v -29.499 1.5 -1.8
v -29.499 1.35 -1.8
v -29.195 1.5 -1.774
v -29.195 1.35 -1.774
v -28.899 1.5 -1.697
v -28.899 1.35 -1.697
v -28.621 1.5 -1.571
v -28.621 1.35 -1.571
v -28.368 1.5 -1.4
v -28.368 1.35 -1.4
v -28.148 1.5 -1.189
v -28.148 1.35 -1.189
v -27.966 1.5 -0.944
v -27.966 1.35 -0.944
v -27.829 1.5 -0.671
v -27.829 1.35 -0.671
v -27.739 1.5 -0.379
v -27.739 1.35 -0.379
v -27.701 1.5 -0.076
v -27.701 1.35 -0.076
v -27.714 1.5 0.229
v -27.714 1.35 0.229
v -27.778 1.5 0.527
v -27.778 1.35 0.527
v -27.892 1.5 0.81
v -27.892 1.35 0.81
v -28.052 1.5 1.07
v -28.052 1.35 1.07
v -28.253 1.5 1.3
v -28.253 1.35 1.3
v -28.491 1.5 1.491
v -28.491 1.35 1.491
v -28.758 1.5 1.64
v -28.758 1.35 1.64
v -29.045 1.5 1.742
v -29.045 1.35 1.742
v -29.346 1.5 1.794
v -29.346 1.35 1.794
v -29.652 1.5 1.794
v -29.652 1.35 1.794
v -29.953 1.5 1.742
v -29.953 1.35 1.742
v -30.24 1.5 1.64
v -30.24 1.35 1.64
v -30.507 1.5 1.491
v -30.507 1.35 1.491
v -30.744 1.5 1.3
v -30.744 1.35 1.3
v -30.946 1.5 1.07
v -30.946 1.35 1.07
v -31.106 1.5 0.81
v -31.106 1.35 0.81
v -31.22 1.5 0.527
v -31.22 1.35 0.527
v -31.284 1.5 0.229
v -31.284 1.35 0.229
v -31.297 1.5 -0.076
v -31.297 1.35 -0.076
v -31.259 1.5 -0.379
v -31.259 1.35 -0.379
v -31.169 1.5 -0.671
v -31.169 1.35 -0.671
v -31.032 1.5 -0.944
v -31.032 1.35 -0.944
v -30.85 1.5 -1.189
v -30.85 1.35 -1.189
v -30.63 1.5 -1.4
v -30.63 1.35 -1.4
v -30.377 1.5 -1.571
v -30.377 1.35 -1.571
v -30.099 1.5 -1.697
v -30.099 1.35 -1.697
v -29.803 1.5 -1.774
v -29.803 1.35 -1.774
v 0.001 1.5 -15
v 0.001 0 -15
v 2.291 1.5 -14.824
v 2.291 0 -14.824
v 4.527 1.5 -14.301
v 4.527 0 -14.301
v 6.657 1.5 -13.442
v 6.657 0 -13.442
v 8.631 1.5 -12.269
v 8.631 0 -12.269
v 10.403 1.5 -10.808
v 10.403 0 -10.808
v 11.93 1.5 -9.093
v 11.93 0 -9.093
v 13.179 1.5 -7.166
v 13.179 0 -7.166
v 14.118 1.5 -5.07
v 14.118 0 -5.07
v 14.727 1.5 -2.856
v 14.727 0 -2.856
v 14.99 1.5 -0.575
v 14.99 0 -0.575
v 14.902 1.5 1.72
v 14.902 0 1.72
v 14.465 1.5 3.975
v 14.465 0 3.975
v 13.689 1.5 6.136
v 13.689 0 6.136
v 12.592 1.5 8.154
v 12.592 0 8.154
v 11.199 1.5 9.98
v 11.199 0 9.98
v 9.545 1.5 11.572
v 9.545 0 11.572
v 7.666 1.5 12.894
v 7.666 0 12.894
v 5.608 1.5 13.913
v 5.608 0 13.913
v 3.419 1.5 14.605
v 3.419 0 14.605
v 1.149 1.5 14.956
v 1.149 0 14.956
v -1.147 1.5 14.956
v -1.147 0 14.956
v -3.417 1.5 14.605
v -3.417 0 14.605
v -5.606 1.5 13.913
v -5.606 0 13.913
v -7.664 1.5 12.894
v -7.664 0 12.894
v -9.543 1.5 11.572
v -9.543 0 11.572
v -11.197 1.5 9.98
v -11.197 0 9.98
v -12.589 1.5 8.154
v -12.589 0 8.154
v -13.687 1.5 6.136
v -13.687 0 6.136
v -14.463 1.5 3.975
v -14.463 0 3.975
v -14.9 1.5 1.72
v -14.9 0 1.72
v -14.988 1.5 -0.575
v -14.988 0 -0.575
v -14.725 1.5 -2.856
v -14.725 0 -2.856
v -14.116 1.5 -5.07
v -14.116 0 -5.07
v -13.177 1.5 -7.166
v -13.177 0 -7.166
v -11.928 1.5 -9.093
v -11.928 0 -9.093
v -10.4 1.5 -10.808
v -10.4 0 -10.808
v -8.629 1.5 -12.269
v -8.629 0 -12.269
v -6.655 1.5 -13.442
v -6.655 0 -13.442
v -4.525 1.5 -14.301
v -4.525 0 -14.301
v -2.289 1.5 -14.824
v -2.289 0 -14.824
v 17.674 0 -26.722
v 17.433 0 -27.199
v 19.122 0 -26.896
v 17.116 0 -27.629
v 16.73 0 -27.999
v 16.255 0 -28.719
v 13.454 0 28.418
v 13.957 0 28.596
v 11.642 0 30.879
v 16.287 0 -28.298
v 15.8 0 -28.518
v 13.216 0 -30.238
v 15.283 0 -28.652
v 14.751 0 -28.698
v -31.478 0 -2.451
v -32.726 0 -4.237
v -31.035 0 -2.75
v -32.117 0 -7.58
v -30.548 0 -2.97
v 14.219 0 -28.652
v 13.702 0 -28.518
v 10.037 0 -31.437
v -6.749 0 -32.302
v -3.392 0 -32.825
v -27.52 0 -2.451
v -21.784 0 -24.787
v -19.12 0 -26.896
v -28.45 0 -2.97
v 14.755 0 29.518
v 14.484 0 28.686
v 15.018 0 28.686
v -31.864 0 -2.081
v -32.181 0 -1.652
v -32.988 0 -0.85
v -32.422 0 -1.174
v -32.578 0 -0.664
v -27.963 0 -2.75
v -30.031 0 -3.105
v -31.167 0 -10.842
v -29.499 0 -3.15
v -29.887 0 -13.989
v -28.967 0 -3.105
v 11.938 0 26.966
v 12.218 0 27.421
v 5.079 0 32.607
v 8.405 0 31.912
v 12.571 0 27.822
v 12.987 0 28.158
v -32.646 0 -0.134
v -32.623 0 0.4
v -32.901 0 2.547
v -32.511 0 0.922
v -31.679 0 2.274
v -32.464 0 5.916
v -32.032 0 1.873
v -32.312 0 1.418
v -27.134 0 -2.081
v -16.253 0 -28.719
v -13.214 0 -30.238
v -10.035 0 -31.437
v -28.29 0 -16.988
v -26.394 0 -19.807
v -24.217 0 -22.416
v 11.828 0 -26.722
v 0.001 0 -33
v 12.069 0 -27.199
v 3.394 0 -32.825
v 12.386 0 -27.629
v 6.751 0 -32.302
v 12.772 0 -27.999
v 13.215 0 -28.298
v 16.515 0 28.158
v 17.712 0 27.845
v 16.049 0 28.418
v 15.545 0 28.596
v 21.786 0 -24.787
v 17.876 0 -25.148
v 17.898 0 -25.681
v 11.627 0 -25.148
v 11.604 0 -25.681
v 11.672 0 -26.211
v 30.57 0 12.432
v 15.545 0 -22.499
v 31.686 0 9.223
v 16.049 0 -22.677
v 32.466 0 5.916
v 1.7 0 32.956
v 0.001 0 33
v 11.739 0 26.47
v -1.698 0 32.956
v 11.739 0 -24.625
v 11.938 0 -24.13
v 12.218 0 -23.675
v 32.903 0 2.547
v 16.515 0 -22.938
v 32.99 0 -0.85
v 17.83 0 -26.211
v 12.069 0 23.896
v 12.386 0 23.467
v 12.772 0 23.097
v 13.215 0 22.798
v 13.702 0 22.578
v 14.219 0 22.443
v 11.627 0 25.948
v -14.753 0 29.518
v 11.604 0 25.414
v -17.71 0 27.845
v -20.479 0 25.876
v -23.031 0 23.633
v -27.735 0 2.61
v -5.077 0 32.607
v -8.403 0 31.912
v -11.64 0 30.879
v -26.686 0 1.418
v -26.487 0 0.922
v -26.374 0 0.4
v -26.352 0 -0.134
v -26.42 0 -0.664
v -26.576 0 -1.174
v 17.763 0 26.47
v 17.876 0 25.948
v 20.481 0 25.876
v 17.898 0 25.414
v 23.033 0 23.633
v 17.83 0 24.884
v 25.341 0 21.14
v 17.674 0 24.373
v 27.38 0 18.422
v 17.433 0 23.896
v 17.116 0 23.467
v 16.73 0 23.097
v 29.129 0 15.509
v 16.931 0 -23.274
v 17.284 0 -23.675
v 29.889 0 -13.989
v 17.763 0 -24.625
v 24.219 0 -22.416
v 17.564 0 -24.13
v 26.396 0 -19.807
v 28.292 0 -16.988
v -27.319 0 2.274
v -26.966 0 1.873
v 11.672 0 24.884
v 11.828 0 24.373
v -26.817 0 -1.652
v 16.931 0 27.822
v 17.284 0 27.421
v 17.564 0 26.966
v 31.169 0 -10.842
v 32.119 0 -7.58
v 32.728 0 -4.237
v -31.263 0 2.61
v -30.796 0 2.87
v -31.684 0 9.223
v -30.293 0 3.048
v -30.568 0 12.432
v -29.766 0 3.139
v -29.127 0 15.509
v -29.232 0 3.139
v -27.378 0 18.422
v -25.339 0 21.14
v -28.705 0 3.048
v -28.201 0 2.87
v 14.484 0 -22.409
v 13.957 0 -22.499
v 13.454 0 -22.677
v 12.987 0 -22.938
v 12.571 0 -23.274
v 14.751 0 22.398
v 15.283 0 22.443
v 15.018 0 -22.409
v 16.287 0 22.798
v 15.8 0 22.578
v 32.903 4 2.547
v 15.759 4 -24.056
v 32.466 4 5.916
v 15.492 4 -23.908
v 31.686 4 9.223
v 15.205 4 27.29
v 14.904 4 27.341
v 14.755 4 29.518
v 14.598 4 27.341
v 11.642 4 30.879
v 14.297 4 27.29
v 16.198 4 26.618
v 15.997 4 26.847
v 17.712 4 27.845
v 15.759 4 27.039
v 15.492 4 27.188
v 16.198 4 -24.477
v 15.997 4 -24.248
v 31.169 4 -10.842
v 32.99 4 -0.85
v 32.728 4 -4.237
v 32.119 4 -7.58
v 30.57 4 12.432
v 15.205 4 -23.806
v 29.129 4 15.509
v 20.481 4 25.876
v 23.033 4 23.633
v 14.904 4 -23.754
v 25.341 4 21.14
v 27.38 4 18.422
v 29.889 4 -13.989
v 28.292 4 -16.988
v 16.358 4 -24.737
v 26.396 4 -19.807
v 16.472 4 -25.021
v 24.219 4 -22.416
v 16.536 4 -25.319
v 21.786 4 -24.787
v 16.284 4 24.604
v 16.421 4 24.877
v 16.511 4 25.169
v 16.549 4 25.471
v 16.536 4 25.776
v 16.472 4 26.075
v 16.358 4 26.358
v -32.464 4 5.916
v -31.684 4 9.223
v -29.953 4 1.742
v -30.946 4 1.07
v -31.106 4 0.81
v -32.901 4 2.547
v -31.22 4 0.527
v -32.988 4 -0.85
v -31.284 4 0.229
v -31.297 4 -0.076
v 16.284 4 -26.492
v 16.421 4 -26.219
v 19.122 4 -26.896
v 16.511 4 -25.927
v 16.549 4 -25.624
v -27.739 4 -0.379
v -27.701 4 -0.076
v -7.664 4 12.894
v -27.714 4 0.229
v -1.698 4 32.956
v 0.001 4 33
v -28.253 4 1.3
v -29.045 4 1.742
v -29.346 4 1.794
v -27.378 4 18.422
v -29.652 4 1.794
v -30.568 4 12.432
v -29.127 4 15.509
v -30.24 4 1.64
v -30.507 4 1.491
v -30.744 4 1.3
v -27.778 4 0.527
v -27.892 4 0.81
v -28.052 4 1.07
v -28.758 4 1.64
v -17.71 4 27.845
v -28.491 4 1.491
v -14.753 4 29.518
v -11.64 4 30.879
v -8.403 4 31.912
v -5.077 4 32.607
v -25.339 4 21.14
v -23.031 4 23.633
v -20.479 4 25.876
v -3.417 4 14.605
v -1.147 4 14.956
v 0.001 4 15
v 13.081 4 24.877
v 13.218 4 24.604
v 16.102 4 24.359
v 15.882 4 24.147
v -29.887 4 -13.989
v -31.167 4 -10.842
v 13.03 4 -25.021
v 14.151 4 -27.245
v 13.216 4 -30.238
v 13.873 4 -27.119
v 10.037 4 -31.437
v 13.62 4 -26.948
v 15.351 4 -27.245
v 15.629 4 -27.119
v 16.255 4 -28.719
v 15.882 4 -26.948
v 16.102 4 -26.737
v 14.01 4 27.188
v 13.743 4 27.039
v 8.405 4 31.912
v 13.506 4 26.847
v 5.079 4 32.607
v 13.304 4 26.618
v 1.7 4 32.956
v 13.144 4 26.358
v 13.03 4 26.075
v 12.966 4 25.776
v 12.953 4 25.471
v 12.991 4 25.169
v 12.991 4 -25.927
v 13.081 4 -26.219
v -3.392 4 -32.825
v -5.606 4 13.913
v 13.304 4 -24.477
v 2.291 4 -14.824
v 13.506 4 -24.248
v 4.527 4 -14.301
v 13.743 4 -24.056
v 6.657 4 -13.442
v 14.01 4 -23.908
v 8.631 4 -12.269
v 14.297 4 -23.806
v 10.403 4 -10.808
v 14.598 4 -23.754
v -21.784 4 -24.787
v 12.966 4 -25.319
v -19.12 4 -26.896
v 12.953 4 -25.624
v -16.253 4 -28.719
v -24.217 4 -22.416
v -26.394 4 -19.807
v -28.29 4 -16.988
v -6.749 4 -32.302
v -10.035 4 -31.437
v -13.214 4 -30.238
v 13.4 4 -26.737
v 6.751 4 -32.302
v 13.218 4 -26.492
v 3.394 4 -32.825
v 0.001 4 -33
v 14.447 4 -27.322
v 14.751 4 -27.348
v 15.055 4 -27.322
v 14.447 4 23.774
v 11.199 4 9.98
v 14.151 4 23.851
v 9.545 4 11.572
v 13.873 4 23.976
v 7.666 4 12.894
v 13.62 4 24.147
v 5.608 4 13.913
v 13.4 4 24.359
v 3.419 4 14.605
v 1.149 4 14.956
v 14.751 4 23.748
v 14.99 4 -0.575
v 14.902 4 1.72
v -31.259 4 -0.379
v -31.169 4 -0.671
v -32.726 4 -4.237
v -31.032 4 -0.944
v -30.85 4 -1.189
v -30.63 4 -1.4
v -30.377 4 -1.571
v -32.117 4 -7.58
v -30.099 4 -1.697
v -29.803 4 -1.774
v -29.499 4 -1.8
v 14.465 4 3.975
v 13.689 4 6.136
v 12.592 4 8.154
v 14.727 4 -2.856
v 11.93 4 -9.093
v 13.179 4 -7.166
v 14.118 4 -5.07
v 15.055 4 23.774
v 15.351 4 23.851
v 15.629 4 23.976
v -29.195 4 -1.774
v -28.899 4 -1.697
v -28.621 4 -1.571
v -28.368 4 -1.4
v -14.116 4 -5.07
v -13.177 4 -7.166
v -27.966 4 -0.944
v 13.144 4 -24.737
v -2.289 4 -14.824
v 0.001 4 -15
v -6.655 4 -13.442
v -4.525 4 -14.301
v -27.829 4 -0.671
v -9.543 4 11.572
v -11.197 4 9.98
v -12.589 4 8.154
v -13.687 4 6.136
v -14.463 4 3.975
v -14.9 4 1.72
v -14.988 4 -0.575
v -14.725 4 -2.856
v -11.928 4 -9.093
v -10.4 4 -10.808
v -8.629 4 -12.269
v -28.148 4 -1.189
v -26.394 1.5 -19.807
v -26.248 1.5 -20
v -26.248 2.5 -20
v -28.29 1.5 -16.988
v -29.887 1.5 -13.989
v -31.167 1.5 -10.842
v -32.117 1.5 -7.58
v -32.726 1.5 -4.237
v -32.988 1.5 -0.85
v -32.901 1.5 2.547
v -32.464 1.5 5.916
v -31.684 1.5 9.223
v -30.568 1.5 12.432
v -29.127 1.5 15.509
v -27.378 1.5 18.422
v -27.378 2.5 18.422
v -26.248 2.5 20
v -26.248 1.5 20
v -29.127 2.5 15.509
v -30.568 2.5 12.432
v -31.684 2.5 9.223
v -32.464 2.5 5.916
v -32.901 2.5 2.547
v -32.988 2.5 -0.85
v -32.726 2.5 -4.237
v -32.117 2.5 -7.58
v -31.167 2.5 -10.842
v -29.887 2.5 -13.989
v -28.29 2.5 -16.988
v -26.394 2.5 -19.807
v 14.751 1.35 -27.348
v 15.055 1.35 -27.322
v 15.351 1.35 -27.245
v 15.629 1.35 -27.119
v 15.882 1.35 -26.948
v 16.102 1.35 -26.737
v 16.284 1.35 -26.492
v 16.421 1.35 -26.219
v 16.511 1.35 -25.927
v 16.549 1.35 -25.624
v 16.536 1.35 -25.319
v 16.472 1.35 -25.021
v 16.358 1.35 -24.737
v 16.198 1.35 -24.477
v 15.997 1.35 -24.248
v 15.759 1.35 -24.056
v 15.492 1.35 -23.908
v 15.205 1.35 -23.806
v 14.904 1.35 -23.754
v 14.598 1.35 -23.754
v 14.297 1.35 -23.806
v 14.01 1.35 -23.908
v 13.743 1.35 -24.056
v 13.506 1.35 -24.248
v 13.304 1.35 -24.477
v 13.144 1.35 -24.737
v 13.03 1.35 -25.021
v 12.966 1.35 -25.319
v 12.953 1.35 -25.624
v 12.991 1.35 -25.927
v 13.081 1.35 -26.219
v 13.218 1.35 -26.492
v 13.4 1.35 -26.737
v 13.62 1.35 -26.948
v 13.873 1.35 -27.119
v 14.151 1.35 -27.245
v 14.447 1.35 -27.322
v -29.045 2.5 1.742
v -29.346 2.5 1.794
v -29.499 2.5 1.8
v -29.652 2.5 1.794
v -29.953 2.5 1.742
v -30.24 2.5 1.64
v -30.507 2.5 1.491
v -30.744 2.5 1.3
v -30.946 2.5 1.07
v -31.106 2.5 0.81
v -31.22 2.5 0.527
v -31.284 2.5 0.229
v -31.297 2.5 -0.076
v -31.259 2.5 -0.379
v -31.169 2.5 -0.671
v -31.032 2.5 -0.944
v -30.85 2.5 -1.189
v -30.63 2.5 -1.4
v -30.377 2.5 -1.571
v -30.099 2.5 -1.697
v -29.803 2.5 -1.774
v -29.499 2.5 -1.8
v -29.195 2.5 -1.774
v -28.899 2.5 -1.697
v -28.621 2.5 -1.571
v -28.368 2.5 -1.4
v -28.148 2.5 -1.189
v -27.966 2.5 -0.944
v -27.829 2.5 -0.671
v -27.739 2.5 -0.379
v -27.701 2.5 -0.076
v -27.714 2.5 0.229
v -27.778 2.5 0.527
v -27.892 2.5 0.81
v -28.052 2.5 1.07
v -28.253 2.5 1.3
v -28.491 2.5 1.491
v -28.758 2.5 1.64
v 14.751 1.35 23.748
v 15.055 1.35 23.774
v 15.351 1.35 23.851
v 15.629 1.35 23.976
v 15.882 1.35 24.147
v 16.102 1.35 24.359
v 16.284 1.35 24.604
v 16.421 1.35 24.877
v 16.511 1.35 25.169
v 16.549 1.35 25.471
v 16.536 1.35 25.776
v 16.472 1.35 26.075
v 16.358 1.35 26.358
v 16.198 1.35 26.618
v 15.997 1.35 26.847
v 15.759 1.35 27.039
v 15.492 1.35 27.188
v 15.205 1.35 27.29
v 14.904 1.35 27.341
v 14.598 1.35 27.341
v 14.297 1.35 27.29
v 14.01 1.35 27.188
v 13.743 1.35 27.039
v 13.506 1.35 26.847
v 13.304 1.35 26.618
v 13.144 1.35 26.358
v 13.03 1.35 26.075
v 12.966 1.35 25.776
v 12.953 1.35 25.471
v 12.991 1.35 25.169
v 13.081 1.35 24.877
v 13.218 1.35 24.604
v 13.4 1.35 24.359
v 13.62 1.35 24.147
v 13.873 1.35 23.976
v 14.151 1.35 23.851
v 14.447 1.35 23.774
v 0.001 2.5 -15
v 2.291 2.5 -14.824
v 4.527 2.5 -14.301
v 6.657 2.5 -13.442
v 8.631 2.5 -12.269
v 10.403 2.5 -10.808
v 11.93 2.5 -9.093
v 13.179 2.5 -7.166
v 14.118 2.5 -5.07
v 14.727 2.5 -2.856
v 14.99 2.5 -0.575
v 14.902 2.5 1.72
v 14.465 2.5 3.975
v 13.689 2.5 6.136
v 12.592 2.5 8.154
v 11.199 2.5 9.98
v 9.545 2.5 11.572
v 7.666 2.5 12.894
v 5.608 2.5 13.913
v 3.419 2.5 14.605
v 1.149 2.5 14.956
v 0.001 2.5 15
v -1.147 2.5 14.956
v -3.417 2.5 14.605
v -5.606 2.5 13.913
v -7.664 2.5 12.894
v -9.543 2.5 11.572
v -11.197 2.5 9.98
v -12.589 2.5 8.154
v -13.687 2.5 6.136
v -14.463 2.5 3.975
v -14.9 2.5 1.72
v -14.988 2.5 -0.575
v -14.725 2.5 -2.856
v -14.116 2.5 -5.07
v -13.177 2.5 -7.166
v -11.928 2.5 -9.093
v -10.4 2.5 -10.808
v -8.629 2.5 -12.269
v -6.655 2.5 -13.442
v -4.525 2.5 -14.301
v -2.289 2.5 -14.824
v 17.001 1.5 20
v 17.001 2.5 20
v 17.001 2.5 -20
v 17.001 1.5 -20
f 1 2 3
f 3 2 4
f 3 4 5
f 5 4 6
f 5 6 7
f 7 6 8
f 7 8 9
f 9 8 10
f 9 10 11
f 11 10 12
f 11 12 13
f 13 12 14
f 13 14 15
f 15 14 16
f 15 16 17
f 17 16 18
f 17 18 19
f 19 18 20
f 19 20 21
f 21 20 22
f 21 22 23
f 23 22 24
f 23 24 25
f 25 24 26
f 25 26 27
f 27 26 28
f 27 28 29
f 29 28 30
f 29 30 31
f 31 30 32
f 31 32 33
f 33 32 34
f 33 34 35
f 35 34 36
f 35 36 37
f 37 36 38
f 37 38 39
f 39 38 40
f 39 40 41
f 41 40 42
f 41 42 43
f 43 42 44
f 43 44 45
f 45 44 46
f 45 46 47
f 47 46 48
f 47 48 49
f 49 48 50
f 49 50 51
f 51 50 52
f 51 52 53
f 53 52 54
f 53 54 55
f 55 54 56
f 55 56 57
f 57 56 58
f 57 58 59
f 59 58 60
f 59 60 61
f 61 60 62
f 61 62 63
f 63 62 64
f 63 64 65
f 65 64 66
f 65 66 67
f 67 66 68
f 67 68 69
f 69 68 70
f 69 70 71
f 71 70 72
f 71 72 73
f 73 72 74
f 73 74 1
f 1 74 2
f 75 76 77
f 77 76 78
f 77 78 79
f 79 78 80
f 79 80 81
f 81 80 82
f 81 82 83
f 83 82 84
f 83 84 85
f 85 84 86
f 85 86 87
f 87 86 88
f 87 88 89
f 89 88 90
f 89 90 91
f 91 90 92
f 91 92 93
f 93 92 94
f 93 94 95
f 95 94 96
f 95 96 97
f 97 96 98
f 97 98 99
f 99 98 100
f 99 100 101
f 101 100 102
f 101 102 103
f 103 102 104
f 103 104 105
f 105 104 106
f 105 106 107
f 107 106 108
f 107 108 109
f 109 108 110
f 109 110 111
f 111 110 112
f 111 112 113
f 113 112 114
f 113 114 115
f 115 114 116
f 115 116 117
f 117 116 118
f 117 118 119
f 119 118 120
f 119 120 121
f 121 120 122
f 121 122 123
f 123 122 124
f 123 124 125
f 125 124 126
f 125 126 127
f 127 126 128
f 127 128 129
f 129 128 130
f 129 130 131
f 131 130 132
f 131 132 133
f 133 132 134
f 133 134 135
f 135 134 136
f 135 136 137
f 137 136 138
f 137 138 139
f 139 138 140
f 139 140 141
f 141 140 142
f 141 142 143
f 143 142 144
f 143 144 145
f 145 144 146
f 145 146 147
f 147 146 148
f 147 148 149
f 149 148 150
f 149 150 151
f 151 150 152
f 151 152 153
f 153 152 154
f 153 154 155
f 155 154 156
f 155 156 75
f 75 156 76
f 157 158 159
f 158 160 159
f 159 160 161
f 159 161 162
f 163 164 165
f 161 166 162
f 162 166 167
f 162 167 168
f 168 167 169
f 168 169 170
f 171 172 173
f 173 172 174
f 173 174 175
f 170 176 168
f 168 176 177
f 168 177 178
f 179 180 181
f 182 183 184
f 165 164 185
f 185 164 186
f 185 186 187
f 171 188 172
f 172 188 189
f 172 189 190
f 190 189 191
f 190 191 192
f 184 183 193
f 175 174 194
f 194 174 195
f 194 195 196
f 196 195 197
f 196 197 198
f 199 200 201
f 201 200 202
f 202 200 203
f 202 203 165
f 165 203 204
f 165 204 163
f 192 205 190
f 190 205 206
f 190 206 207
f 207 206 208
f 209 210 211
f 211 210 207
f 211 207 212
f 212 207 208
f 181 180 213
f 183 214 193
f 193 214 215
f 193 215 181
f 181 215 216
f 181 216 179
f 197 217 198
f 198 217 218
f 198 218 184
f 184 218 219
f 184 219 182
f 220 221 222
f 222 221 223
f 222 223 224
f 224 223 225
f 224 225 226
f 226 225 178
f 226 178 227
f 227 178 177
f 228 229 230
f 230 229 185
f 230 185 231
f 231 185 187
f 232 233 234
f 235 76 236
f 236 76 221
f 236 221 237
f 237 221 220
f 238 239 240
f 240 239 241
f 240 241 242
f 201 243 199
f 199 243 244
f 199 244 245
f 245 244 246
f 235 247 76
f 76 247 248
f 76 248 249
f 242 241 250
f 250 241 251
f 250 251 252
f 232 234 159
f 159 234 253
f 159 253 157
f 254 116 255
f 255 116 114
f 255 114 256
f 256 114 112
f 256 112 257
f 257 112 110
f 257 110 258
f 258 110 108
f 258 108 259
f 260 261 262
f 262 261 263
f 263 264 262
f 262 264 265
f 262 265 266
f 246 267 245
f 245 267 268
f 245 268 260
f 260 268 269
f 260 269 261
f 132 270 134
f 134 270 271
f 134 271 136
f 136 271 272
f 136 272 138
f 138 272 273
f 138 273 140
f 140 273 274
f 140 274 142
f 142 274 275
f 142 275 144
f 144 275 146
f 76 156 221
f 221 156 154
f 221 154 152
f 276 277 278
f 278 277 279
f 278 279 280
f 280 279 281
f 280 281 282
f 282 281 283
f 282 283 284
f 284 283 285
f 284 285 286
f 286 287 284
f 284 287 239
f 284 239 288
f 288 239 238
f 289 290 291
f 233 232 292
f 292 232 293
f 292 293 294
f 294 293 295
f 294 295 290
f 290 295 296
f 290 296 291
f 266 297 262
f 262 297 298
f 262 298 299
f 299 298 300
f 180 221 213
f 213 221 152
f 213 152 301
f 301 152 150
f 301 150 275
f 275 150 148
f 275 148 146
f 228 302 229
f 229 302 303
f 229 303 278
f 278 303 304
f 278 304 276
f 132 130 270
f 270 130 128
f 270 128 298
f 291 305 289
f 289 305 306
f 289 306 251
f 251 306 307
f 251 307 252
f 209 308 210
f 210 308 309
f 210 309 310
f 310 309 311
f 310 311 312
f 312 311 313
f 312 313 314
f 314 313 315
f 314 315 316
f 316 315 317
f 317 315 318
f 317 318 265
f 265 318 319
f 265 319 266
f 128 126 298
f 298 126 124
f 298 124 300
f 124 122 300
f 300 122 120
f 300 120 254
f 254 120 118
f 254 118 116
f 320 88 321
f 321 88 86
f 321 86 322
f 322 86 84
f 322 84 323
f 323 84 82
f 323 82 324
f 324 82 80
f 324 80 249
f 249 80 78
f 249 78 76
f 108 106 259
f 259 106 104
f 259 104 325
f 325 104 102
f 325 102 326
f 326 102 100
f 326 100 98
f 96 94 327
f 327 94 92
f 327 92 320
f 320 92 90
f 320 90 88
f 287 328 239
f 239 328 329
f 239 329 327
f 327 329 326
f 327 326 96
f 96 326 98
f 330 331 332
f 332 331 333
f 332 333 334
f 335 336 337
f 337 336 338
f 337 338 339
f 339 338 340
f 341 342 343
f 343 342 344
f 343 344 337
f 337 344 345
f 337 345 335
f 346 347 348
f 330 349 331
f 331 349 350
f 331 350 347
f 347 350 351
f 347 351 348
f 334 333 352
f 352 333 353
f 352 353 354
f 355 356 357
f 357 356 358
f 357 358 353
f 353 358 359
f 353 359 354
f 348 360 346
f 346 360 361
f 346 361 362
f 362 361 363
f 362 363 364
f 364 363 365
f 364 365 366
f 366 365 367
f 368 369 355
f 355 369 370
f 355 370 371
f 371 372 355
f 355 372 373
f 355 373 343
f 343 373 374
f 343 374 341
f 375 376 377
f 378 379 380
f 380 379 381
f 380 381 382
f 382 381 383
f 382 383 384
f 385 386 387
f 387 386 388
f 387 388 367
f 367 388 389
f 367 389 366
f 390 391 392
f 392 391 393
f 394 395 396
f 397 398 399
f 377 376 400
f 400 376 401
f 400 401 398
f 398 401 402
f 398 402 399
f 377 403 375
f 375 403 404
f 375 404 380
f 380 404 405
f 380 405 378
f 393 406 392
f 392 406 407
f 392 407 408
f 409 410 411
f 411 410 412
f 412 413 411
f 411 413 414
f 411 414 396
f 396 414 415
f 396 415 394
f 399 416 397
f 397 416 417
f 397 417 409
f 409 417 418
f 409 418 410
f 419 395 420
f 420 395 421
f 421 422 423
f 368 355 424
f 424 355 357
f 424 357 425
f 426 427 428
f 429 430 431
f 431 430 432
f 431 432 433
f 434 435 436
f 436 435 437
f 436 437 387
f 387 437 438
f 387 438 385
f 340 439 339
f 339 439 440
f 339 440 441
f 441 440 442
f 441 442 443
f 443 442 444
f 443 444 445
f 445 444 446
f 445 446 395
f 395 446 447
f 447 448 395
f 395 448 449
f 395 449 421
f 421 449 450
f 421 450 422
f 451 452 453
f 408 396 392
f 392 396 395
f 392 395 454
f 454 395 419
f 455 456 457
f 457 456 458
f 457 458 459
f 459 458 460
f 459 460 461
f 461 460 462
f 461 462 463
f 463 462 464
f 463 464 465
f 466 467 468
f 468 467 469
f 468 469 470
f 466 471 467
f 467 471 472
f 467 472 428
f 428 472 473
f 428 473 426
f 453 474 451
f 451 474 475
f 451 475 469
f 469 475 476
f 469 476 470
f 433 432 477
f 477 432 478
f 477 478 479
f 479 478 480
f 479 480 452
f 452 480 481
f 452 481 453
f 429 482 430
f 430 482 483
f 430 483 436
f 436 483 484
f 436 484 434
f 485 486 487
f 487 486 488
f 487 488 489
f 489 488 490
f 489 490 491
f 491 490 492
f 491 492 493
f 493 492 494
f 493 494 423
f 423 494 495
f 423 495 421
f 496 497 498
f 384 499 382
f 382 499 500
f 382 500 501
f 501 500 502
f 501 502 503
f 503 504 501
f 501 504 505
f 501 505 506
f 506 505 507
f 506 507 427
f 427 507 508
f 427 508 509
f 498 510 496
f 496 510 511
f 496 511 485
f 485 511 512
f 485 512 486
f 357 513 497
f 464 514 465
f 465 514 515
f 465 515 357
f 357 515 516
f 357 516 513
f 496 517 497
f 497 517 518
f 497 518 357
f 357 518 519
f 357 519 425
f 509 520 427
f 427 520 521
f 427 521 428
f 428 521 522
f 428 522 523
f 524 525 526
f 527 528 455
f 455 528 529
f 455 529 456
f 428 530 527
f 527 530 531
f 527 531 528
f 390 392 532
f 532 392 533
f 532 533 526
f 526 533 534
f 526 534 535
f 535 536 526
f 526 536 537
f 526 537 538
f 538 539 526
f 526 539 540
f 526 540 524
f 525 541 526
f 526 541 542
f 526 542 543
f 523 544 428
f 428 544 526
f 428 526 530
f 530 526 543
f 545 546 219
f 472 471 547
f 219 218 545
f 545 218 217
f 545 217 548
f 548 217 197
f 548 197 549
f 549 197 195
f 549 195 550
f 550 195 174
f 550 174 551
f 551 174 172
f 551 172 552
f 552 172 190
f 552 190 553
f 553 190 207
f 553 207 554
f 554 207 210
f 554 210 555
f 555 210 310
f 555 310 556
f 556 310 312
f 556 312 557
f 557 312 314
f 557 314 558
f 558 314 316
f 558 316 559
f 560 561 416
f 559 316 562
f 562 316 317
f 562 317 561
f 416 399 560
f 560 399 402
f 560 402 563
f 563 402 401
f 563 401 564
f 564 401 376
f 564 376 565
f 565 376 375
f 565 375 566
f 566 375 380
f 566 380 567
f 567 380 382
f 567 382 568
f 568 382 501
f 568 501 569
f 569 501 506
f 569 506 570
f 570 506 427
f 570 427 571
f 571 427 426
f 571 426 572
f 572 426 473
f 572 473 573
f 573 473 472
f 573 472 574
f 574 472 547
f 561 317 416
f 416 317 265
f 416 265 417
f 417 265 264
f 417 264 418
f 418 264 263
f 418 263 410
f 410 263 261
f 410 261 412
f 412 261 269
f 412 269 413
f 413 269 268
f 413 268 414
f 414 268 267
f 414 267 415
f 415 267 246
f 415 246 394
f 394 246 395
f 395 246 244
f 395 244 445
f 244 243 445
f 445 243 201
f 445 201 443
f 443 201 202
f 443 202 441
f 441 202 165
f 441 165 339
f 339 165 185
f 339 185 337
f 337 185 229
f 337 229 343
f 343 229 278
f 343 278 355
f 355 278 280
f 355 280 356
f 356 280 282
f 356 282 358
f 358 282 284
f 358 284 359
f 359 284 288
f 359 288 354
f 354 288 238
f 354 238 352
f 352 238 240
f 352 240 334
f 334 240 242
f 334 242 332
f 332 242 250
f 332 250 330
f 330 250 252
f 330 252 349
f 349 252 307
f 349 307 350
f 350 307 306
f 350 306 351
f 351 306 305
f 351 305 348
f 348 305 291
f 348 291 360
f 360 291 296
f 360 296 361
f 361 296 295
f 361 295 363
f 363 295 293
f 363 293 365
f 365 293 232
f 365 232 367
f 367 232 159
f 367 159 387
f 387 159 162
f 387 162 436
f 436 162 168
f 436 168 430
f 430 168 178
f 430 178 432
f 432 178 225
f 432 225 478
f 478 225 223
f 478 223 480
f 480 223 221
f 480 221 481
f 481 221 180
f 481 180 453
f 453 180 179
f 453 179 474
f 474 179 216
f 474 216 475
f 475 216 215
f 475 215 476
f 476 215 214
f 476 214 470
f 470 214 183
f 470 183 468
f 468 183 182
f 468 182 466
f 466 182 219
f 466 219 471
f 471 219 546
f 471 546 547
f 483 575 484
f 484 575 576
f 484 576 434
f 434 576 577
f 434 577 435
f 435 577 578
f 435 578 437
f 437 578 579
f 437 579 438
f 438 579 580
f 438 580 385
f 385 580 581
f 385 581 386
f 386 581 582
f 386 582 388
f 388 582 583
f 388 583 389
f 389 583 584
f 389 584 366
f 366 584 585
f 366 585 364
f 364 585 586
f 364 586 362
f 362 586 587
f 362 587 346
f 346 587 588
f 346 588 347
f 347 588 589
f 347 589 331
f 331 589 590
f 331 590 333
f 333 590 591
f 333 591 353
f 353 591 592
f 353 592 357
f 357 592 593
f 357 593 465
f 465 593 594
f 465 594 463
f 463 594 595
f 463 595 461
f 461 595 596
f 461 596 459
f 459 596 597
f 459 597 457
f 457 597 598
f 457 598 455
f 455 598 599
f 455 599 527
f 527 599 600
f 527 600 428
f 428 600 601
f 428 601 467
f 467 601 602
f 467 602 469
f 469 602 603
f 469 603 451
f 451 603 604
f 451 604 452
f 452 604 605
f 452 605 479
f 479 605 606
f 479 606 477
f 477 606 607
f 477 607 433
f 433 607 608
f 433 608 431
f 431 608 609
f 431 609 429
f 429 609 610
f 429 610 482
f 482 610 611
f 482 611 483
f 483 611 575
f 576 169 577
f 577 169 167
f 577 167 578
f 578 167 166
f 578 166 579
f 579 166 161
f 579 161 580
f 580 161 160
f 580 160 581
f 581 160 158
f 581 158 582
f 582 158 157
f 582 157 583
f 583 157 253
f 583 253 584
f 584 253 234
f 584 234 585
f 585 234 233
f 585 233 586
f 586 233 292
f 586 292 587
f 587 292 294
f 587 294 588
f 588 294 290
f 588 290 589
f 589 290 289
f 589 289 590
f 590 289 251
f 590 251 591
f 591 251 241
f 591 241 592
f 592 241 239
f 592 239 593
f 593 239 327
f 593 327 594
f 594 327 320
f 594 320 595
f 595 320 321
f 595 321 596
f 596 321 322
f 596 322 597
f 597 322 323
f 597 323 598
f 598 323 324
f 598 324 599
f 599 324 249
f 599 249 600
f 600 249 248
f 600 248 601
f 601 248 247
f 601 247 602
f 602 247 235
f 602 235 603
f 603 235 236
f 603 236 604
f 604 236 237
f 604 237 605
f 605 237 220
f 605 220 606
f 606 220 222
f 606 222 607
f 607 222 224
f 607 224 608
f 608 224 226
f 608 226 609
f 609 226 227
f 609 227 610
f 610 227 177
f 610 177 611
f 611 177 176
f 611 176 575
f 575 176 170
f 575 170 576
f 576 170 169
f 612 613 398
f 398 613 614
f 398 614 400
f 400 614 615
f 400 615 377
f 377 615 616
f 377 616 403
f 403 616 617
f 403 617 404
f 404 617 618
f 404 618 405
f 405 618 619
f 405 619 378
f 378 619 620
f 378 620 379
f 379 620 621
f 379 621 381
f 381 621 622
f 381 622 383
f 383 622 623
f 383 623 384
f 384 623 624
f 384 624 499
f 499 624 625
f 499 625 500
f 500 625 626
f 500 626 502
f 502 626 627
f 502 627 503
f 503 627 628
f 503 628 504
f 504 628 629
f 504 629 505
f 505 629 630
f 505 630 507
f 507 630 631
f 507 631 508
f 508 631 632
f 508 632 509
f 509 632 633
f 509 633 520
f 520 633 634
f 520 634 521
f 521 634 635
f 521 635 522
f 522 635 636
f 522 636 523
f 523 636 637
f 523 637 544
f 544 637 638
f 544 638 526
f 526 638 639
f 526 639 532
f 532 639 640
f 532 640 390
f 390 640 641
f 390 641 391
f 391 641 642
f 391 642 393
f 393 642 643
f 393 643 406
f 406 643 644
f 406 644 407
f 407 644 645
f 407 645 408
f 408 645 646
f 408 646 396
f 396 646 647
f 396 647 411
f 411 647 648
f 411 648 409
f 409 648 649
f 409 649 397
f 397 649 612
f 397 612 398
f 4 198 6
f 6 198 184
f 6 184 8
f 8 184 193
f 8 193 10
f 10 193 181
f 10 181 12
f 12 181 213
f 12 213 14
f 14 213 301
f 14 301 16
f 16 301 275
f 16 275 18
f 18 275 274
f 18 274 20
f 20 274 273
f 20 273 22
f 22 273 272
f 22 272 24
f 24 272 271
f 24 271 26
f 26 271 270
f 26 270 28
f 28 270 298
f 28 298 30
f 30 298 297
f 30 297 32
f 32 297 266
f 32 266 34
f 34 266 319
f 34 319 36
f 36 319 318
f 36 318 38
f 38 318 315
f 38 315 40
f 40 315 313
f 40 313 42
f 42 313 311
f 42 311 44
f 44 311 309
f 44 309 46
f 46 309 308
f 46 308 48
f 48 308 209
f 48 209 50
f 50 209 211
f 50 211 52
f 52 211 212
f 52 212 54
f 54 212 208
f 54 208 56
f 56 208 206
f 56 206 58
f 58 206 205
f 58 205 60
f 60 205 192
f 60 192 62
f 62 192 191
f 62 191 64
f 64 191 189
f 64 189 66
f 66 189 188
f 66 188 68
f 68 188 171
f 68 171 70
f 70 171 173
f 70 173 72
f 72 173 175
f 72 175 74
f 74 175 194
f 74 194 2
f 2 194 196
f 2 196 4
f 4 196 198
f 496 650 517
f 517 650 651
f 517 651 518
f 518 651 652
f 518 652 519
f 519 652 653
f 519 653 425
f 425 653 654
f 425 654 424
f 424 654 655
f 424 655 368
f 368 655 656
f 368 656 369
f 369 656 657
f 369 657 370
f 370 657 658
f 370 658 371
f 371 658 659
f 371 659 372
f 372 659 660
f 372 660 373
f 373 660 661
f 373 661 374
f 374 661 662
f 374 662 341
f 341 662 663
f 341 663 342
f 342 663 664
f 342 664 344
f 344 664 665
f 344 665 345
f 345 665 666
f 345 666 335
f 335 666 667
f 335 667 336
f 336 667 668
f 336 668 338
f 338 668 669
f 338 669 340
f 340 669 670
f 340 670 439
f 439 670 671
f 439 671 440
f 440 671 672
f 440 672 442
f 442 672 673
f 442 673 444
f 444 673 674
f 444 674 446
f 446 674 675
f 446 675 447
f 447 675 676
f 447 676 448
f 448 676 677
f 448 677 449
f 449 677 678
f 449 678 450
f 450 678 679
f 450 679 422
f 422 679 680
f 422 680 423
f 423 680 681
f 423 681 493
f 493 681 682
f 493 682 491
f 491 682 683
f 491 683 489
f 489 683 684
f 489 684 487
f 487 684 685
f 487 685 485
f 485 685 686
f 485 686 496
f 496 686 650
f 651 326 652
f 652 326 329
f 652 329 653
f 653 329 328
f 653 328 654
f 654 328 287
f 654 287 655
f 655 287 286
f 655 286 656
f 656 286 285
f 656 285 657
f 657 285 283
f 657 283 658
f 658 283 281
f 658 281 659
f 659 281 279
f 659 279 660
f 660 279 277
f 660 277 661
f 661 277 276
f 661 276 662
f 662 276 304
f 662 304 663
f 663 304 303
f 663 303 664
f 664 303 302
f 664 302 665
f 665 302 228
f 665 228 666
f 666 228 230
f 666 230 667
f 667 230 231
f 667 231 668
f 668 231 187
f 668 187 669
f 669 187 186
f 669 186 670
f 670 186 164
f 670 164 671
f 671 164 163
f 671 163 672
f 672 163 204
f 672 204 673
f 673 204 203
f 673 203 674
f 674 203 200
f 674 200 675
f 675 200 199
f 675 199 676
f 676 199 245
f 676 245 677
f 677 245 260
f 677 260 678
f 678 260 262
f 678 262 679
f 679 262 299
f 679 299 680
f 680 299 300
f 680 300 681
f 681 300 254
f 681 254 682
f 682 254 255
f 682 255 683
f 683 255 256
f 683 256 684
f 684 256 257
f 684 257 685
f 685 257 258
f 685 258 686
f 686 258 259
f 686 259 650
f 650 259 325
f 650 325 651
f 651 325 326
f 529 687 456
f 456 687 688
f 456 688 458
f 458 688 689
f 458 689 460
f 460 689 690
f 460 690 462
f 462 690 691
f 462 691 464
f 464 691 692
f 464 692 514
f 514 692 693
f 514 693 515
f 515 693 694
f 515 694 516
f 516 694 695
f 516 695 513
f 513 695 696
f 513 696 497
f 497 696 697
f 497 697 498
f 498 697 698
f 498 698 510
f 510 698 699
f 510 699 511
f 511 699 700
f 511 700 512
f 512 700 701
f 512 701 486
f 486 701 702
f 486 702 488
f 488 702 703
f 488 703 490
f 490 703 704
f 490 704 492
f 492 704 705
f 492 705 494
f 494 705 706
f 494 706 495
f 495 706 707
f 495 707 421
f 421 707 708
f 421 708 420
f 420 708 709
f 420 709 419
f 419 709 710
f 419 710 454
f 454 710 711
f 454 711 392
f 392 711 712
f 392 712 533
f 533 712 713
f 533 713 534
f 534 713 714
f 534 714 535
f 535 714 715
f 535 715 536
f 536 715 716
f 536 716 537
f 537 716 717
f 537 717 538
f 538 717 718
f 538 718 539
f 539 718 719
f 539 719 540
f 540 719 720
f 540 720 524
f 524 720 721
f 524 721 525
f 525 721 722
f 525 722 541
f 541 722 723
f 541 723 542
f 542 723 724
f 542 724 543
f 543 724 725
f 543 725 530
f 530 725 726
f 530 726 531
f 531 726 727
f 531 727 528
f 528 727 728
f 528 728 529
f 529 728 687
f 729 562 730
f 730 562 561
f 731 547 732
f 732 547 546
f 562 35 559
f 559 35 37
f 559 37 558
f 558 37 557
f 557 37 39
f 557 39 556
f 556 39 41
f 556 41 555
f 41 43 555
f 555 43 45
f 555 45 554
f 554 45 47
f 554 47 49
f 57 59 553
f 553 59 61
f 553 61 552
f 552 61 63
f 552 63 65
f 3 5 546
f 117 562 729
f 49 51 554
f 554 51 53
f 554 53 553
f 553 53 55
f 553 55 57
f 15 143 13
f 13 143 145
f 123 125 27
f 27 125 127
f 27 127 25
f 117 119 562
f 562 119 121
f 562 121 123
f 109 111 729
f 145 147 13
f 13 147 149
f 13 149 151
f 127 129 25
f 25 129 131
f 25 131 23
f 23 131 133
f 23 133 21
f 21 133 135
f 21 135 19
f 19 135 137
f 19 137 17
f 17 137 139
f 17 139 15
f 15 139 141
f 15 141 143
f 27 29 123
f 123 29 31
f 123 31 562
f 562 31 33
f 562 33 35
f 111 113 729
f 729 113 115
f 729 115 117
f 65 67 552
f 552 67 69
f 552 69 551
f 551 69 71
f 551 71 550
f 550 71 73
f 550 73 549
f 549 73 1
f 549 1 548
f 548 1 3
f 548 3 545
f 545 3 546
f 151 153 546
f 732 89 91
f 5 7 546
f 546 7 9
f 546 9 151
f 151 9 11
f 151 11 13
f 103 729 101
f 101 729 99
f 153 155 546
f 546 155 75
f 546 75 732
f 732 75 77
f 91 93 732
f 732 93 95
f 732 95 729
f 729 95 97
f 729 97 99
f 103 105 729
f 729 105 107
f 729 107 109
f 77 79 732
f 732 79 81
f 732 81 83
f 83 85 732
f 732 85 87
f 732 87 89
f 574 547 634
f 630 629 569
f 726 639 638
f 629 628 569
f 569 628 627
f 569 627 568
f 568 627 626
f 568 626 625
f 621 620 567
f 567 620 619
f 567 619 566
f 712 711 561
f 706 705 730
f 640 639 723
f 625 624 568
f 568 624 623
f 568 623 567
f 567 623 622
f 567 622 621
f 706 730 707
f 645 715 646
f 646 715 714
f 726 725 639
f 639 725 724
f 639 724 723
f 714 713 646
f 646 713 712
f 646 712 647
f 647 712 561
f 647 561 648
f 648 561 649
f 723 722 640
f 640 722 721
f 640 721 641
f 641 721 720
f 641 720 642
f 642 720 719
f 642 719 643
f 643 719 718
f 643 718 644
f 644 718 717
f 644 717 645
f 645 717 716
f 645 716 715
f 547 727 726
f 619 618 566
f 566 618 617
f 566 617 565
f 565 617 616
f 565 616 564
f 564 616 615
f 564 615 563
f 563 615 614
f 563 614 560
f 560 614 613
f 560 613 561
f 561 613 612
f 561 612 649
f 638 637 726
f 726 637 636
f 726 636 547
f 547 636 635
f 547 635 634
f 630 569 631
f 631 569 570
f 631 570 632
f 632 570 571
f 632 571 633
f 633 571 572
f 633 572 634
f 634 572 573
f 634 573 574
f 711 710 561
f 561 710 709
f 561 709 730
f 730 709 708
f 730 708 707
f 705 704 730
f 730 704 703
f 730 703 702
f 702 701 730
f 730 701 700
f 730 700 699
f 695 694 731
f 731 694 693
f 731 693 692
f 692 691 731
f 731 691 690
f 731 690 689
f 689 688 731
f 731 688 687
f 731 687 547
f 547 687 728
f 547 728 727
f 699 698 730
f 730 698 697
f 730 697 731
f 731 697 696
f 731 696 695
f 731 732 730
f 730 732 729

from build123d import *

# Parameters (mm, degrees)
SKETCH1_R                                       = 33
SKETCH1_R_2                                     = 1.5
BOSS_EXTRUDE1_DEPTH                             = 4
CSK_FOR_M3_FLAT_HEAD_MACHINE_SCREW1_D           = 3.6
CSK_FOR_M3_FLAT_HEAD_MACHINE_SCREW1_CSINK_D     = 6.3
CSK_FOR_M3_FLAT_HEAD_MACHINE_SCREW1_CSINK_ANGLE = 90
CORTAR_EXTRUIR1_REACH                           = 48.84
CROQUIS1_R                                      = 15
CROQUIS2_W                                      = 40
CROQUIS2_H                                      = 1
CORTAR_EXTRUIR2_DEPTH                           = 50


with BuildPart() as part:
    # Sketch1 → Boss-Extrude1 (new body)
    with BuildSketch(Plane(origin=(0, 0, 0), x_dir=(1, 0, 0), z_dir=(0, 1, 0))):
        Circle(SKETCH1_R)
        with Locations((-29.5, 0)):
            Circle(SKETCH1_R_2, mode=Mode.SUBTRACT)
        with Locations((14.75, 25.547749412)):
            Circle(SKETCH1_R_2, mode=Mode.SUBTRACT)
        with Locations((14.75, -25.547749412)):
            Circle(SKETCH1_R_2, mode=Mode.SUBTRACT)
    extrude(amount=BOSS_EXTRUDE1_DEPTH)

    # CSK for M3 Flat Head Machine Screw1 (through all)
    with Locations(Plane(origin=(0, 0, 0), x_dir=(-1, 0, 0), z_dir=(0, -1, 0))):
        with Locations((-14.75, -25.547749412), (29.5, 0), (-14.75, 25.547749412)):
            CounterSinkHole(CSK_FOR_M3_FLAT_HEAD_MACHINE_SCREW1_D / 2, CSK_FOR_M3_FLAT_HEAD_MACHINE_SCREW1_CSINK_D / 2, counter_sink_angle=CSK_FOR_M3_FLAT_HEAD_MACHINE_SCREW1_CSINK_ANGLE)

    # Croquis1 → Cortar-Extruir1 (cut, up to next)
    with BuildSketch(Plane.XZ, mode=Mode.PRIVATE) as cortar_extruir1_sk1:
        Circle(CROQUIS1_R)
    cortar_extruir1_tool1 = extrude(cortar_extruir1_sk1.sketch, amount=-CORTAR_EXTRUIR1_REACH, mode=Mode.PRIVATE) & part.part
    add(cortar_extruir1_tool1.solids().sort_by_distance((0, 0, 0))[0], mode=Mode.SUBTRACT)

    # Croquis2 → Cortar-Extruir2 (cut)
    with BuildSketch(Plane.ZY.offset(33)):
        with Locations((0, 2)):
            Rectangle(CROQUIS2_W, CROQUIS2_H)
    extrude(amount=-CORTAR_EXTRUIR2_DEPTH, mode=Mode.SUBTRACT)


solid = part.part
